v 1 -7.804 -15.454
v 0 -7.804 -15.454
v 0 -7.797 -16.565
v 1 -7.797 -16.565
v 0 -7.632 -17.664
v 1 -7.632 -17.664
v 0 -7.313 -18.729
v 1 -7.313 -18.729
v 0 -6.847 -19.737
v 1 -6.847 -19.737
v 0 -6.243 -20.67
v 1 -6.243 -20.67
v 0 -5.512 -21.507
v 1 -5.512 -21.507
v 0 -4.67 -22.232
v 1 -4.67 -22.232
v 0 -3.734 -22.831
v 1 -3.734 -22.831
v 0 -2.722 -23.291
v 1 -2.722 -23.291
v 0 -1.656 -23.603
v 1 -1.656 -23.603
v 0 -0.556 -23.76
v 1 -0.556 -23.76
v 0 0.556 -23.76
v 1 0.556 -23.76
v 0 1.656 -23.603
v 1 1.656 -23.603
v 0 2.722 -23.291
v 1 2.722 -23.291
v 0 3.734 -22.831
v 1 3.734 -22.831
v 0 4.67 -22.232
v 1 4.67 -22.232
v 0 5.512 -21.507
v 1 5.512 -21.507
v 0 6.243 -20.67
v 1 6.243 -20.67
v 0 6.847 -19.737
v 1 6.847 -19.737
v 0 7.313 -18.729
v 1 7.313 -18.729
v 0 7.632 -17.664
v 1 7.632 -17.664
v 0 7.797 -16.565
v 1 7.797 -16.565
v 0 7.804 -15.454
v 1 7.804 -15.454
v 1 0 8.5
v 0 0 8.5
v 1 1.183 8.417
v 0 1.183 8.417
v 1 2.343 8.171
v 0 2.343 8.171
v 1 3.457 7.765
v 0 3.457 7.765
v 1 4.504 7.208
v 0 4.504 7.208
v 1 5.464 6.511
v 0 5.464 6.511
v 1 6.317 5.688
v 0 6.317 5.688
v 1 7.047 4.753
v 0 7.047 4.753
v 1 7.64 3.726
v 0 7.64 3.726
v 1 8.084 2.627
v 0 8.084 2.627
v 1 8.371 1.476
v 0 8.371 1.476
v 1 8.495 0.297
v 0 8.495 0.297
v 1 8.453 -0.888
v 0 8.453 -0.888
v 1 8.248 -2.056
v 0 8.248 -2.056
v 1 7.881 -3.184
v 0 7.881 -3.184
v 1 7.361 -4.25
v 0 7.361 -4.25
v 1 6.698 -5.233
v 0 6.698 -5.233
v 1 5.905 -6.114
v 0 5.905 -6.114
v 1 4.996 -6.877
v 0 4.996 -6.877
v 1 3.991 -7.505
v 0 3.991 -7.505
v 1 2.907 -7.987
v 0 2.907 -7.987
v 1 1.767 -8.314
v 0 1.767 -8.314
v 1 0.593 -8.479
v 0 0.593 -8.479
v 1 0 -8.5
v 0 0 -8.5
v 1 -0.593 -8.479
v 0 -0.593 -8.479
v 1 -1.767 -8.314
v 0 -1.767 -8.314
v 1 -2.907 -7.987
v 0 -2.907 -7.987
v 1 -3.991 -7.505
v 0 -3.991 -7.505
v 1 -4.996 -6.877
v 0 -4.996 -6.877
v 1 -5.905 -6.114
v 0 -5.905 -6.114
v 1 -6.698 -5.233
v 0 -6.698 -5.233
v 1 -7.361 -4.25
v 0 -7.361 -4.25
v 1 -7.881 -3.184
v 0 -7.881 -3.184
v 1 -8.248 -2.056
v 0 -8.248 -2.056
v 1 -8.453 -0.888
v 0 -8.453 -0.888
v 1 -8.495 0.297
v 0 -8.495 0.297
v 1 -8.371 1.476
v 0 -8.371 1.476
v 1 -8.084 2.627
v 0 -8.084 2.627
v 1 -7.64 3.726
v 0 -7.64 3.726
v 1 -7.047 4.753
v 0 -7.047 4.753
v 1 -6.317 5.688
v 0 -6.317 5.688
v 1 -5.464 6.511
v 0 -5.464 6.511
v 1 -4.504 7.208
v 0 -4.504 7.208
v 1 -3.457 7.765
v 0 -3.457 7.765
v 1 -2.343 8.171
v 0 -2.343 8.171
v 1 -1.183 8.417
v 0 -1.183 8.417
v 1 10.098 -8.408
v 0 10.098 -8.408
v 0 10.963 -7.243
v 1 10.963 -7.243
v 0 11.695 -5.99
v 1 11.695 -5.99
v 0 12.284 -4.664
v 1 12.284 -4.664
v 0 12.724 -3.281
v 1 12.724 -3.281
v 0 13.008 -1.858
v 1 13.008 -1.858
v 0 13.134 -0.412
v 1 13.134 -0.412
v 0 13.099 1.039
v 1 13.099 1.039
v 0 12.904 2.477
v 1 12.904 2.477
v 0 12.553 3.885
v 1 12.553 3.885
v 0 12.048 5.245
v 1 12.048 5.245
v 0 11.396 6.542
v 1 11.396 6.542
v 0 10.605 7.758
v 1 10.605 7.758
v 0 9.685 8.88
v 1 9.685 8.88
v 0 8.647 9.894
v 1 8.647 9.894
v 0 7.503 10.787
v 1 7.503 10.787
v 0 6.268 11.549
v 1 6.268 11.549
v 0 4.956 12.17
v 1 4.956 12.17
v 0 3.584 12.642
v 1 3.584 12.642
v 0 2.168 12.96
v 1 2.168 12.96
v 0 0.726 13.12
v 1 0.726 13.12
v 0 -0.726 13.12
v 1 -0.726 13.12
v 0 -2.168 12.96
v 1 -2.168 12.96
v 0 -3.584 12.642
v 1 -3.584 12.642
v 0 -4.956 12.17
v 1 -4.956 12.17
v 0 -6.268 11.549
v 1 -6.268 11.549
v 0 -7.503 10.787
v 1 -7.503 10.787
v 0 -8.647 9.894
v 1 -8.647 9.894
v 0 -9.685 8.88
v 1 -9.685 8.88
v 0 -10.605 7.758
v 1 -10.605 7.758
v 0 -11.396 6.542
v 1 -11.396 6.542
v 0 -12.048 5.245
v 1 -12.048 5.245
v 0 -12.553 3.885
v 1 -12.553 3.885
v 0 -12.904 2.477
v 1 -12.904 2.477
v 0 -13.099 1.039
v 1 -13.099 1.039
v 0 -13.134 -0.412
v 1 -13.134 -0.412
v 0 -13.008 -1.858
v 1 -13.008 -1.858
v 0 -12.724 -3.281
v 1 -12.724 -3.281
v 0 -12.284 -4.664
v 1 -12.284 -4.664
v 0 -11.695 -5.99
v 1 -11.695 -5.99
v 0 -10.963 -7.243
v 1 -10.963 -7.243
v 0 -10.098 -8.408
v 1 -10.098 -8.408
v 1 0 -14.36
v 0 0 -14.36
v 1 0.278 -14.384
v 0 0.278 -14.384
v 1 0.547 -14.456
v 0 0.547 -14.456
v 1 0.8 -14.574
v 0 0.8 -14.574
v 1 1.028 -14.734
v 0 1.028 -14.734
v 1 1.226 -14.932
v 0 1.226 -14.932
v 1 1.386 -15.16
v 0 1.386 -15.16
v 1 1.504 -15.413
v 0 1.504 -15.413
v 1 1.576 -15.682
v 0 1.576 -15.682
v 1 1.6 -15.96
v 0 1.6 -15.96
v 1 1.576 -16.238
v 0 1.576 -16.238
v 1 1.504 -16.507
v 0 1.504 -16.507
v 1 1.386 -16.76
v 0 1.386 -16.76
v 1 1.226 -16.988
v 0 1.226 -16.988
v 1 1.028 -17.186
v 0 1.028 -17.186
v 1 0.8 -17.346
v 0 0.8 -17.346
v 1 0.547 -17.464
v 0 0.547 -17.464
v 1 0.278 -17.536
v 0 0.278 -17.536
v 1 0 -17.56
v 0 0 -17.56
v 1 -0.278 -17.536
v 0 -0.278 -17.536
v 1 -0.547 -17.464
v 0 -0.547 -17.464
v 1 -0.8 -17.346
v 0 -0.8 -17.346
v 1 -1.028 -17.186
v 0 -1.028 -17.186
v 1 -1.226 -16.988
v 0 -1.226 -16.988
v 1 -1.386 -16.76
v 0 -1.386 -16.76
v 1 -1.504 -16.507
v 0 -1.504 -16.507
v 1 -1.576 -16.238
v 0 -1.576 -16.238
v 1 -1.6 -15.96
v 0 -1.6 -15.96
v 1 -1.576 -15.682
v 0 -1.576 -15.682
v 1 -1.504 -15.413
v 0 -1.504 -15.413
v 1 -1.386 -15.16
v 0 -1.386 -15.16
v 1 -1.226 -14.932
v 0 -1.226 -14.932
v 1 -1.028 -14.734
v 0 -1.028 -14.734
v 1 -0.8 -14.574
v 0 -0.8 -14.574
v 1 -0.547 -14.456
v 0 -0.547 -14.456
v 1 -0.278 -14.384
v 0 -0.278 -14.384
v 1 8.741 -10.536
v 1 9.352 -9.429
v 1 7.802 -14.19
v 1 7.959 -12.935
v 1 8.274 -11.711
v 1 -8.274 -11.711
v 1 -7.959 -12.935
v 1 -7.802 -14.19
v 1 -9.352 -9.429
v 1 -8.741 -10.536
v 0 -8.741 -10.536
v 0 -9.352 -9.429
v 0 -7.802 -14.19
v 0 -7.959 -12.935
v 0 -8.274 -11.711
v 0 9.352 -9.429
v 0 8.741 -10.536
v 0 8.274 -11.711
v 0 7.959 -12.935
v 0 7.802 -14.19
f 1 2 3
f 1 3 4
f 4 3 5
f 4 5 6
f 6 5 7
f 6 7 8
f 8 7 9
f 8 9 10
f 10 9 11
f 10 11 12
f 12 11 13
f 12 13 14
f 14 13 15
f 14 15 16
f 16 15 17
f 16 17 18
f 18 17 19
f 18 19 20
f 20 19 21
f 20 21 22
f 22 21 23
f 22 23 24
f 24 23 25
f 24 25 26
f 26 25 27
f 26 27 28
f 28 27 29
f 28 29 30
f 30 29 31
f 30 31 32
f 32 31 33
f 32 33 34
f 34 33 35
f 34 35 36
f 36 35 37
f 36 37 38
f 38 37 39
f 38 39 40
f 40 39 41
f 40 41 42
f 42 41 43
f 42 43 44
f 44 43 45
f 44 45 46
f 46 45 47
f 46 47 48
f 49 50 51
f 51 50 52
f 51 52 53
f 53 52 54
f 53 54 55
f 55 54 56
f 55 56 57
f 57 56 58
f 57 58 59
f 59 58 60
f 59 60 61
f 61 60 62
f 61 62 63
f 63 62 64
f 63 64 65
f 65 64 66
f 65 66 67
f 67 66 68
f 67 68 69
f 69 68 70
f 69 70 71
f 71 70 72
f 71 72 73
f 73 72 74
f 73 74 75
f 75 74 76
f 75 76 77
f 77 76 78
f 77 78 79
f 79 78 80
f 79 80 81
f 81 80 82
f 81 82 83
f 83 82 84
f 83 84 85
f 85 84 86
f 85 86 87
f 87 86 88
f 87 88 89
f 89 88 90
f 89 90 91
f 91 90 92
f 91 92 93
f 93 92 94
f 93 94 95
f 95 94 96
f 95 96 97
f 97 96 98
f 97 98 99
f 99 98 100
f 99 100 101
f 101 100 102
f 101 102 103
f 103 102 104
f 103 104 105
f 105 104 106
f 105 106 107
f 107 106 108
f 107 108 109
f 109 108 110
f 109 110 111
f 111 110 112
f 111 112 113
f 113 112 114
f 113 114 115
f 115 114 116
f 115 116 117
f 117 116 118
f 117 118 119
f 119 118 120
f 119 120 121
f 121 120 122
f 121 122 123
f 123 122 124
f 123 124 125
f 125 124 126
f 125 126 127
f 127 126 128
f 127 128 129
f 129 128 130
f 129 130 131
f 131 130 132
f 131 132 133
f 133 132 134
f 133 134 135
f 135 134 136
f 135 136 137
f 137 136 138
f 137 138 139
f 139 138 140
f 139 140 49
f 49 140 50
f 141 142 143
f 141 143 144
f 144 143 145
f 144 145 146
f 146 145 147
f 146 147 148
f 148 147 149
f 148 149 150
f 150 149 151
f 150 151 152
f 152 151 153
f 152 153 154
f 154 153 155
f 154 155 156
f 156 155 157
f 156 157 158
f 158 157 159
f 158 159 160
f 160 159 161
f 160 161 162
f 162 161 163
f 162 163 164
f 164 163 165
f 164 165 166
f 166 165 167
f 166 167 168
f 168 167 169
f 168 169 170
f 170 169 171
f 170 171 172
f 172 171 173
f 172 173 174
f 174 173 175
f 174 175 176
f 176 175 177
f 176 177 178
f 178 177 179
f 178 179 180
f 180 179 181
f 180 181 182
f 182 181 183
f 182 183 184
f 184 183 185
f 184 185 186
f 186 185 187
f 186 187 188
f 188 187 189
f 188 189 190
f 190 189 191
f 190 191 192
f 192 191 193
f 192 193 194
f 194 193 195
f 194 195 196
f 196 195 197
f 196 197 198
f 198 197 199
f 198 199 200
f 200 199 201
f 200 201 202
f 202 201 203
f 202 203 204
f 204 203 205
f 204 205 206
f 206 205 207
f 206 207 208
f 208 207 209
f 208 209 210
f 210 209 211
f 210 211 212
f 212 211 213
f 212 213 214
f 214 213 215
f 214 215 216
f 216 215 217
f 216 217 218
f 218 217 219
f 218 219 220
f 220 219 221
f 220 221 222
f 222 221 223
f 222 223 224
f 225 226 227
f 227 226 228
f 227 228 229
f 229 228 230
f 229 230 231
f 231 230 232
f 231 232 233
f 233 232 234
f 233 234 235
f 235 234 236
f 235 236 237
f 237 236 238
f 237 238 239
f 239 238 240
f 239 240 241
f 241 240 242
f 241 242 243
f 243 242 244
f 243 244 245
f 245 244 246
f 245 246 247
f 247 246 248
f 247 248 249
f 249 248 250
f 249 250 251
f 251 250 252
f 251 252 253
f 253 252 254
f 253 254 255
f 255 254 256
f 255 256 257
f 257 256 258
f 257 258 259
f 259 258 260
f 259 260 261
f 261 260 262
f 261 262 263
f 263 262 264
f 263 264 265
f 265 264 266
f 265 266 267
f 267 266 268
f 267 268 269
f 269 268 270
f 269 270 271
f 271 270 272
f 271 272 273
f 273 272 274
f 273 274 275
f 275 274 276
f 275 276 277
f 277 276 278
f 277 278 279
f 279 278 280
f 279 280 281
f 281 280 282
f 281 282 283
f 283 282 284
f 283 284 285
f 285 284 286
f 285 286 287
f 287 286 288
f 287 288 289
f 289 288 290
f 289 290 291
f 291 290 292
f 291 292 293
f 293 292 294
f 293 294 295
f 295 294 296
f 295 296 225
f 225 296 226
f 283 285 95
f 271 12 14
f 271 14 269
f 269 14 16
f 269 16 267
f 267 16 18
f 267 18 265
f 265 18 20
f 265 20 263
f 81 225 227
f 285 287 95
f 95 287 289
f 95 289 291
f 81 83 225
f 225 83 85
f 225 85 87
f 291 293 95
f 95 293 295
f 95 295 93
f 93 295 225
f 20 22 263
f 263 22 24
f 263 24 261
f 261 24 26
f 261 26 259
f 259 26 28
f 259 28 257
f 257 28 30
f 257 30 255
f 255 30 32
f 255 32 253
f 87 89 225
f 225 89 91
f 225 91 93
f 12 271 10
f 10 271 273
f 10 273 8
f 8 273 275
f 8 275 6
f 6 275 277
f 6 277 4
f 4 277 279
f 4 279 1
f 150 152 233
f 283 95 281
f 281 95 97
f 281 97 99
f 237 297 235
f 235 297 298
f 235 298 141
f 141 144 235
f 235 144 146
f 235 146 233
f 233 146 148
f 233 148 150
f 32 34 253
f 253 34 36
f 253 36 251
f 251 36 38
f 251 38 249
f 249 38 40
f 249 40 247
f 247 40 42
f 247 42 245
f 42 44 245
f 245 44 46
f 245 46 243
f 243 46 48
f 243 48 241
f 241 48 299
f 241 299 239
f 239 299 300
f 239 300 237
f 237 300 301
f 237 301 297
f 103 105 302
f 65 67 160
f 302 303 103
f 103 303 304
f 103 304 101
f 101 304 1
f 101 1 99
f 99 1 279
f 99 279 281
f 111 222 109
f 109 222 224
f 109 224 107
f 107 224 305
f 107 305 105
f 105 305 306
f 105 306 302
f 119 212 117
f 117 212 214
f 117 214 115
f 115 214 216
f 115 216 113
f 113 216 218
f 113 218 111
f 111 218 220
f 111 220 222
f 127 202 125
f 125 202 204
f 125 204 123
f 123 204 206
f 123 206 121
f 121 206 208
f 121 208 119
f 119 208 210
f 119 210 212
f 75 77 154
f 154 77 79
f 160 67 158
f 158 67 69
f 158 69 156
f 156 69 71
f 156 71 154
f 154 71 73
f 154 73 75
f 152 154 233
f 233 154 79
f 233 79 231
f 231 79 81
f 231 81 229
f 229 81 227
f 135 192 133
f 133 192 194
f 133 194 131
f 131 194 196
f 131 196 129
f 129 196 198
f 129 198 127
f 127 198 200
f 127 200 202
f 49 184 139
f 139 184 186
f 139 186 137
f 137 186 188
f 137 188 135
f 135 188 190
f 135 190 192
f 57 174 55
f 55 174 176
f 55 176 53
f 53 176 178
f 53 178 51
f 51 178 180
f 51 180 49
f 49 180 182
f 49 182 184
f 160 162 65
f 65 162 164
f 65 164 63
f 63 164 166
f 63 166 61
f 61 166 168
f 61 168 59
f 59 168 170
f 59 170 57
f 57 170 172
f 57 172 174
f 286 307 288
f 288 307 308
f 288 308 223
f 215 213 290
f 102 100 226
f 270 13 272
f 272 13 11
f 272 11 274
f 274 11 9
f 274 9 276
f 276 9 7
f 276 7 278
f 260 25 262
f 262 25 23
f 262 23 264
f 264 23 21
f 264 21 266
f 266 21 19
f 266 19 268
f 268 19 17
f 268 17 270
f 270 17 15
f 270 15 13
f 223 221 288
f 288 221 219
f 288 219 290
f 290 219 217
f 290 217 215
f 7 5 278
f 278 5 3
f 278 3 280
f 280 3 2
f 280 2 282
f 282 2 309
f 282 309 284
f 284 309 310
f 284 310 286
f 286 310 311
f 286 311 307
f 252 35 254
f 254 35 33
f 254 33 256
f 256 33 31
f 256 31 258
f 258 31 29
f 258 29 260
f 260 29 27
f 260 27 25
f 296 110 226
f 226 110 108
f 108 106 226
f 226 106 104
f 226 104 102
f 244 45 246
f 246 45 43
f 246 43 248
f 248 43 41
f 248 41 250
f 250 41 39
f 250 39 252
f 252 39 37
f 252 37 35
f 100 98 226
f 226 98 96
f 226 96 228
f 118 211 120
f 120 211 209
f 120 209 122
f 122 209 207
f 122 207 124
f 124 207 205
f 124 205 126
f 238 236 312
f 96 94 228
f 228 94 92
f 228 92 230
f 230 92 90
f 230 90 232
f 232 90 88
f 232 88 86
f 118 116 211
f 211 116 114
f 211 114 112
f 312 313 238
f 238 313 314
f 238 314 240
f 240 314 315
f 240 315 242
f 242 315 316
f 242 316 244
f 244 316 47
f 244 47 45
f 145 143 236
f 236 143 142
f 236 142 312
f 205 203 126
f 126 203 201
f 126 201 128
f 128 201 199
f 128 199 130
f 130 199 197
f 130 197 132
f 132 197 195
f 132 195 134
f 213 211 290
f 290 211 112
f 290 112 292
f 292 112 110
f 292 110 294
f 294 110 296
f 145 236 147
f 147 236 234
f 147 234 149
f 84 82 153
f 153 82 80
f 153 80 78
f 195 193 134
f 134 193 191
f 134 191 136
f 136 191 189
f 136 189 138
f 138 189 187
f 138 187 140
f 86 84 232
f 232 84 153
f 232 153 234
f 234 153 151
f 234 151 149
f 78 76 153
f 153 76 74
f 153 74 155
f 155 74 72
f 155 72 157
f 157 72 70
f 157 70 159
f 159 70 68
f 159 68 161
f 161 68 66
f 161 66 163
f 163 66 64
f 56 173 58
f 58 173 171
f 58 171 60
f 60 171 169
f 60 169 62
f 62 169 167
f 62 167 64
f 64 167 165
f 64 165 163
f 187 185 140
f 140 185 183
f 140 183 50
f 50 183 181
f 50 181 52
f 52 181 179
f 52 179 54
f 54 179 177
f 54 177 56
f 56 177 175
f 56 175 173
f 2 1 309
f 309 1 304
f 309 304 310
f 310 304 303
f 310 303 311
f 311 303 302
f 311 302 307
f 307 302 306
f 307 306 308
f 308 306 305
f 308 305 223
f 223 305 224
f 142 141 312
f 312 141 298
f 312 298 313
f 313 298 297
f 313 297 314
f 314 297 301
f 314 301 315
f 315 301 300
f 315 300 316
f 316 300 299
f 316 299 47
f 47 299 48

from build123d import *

# Parameters (mm, degrees)
SKETCH_1_R      = 8.5
SKETCH_1_R_2    = 1.6
EXTRUDE_1_DEPTH = 1
FILLET_1_R      = 10


with BuildPart() as part:
    # Эскиз1 → Бобышка-Вытянуть1 (new body)
    with BuildSketch(Plane(origin=(0, 0, 0), x_dir=(0, 0, -1), z_dir=(1, 0, 0))):
        with BuildLine():
            ThreePointArc((11.473333333, -6.404859266), (23.78, 0), (11.473333333, 6.404859266))
            ThreePointArc((11.473333333, 6.404859266), (-13.14, 0), (11.473333333, -6.404859266))
        make_face()
        Circle(SKETCH_1_R, mode=Mode.SUBTRACT)
        with Locations((15.96, 0)):
            Circle(SKETCH_1_R_2, mode=Mode.SUBTRACT)
    extrude(amount=EXTRUDE_1_DEPTH)

    # Скругление1
    fillet_1_edges = [part.edges().sort_by_distance(p)[0] for p in [
        (0.5, -6.404859266, -11.473333333),
        (0.5, 6.404859266, -11.473333333),
    ]]
    fillet(fillet_1_edges, radius=FILLET_1_R)


solid = part.part
